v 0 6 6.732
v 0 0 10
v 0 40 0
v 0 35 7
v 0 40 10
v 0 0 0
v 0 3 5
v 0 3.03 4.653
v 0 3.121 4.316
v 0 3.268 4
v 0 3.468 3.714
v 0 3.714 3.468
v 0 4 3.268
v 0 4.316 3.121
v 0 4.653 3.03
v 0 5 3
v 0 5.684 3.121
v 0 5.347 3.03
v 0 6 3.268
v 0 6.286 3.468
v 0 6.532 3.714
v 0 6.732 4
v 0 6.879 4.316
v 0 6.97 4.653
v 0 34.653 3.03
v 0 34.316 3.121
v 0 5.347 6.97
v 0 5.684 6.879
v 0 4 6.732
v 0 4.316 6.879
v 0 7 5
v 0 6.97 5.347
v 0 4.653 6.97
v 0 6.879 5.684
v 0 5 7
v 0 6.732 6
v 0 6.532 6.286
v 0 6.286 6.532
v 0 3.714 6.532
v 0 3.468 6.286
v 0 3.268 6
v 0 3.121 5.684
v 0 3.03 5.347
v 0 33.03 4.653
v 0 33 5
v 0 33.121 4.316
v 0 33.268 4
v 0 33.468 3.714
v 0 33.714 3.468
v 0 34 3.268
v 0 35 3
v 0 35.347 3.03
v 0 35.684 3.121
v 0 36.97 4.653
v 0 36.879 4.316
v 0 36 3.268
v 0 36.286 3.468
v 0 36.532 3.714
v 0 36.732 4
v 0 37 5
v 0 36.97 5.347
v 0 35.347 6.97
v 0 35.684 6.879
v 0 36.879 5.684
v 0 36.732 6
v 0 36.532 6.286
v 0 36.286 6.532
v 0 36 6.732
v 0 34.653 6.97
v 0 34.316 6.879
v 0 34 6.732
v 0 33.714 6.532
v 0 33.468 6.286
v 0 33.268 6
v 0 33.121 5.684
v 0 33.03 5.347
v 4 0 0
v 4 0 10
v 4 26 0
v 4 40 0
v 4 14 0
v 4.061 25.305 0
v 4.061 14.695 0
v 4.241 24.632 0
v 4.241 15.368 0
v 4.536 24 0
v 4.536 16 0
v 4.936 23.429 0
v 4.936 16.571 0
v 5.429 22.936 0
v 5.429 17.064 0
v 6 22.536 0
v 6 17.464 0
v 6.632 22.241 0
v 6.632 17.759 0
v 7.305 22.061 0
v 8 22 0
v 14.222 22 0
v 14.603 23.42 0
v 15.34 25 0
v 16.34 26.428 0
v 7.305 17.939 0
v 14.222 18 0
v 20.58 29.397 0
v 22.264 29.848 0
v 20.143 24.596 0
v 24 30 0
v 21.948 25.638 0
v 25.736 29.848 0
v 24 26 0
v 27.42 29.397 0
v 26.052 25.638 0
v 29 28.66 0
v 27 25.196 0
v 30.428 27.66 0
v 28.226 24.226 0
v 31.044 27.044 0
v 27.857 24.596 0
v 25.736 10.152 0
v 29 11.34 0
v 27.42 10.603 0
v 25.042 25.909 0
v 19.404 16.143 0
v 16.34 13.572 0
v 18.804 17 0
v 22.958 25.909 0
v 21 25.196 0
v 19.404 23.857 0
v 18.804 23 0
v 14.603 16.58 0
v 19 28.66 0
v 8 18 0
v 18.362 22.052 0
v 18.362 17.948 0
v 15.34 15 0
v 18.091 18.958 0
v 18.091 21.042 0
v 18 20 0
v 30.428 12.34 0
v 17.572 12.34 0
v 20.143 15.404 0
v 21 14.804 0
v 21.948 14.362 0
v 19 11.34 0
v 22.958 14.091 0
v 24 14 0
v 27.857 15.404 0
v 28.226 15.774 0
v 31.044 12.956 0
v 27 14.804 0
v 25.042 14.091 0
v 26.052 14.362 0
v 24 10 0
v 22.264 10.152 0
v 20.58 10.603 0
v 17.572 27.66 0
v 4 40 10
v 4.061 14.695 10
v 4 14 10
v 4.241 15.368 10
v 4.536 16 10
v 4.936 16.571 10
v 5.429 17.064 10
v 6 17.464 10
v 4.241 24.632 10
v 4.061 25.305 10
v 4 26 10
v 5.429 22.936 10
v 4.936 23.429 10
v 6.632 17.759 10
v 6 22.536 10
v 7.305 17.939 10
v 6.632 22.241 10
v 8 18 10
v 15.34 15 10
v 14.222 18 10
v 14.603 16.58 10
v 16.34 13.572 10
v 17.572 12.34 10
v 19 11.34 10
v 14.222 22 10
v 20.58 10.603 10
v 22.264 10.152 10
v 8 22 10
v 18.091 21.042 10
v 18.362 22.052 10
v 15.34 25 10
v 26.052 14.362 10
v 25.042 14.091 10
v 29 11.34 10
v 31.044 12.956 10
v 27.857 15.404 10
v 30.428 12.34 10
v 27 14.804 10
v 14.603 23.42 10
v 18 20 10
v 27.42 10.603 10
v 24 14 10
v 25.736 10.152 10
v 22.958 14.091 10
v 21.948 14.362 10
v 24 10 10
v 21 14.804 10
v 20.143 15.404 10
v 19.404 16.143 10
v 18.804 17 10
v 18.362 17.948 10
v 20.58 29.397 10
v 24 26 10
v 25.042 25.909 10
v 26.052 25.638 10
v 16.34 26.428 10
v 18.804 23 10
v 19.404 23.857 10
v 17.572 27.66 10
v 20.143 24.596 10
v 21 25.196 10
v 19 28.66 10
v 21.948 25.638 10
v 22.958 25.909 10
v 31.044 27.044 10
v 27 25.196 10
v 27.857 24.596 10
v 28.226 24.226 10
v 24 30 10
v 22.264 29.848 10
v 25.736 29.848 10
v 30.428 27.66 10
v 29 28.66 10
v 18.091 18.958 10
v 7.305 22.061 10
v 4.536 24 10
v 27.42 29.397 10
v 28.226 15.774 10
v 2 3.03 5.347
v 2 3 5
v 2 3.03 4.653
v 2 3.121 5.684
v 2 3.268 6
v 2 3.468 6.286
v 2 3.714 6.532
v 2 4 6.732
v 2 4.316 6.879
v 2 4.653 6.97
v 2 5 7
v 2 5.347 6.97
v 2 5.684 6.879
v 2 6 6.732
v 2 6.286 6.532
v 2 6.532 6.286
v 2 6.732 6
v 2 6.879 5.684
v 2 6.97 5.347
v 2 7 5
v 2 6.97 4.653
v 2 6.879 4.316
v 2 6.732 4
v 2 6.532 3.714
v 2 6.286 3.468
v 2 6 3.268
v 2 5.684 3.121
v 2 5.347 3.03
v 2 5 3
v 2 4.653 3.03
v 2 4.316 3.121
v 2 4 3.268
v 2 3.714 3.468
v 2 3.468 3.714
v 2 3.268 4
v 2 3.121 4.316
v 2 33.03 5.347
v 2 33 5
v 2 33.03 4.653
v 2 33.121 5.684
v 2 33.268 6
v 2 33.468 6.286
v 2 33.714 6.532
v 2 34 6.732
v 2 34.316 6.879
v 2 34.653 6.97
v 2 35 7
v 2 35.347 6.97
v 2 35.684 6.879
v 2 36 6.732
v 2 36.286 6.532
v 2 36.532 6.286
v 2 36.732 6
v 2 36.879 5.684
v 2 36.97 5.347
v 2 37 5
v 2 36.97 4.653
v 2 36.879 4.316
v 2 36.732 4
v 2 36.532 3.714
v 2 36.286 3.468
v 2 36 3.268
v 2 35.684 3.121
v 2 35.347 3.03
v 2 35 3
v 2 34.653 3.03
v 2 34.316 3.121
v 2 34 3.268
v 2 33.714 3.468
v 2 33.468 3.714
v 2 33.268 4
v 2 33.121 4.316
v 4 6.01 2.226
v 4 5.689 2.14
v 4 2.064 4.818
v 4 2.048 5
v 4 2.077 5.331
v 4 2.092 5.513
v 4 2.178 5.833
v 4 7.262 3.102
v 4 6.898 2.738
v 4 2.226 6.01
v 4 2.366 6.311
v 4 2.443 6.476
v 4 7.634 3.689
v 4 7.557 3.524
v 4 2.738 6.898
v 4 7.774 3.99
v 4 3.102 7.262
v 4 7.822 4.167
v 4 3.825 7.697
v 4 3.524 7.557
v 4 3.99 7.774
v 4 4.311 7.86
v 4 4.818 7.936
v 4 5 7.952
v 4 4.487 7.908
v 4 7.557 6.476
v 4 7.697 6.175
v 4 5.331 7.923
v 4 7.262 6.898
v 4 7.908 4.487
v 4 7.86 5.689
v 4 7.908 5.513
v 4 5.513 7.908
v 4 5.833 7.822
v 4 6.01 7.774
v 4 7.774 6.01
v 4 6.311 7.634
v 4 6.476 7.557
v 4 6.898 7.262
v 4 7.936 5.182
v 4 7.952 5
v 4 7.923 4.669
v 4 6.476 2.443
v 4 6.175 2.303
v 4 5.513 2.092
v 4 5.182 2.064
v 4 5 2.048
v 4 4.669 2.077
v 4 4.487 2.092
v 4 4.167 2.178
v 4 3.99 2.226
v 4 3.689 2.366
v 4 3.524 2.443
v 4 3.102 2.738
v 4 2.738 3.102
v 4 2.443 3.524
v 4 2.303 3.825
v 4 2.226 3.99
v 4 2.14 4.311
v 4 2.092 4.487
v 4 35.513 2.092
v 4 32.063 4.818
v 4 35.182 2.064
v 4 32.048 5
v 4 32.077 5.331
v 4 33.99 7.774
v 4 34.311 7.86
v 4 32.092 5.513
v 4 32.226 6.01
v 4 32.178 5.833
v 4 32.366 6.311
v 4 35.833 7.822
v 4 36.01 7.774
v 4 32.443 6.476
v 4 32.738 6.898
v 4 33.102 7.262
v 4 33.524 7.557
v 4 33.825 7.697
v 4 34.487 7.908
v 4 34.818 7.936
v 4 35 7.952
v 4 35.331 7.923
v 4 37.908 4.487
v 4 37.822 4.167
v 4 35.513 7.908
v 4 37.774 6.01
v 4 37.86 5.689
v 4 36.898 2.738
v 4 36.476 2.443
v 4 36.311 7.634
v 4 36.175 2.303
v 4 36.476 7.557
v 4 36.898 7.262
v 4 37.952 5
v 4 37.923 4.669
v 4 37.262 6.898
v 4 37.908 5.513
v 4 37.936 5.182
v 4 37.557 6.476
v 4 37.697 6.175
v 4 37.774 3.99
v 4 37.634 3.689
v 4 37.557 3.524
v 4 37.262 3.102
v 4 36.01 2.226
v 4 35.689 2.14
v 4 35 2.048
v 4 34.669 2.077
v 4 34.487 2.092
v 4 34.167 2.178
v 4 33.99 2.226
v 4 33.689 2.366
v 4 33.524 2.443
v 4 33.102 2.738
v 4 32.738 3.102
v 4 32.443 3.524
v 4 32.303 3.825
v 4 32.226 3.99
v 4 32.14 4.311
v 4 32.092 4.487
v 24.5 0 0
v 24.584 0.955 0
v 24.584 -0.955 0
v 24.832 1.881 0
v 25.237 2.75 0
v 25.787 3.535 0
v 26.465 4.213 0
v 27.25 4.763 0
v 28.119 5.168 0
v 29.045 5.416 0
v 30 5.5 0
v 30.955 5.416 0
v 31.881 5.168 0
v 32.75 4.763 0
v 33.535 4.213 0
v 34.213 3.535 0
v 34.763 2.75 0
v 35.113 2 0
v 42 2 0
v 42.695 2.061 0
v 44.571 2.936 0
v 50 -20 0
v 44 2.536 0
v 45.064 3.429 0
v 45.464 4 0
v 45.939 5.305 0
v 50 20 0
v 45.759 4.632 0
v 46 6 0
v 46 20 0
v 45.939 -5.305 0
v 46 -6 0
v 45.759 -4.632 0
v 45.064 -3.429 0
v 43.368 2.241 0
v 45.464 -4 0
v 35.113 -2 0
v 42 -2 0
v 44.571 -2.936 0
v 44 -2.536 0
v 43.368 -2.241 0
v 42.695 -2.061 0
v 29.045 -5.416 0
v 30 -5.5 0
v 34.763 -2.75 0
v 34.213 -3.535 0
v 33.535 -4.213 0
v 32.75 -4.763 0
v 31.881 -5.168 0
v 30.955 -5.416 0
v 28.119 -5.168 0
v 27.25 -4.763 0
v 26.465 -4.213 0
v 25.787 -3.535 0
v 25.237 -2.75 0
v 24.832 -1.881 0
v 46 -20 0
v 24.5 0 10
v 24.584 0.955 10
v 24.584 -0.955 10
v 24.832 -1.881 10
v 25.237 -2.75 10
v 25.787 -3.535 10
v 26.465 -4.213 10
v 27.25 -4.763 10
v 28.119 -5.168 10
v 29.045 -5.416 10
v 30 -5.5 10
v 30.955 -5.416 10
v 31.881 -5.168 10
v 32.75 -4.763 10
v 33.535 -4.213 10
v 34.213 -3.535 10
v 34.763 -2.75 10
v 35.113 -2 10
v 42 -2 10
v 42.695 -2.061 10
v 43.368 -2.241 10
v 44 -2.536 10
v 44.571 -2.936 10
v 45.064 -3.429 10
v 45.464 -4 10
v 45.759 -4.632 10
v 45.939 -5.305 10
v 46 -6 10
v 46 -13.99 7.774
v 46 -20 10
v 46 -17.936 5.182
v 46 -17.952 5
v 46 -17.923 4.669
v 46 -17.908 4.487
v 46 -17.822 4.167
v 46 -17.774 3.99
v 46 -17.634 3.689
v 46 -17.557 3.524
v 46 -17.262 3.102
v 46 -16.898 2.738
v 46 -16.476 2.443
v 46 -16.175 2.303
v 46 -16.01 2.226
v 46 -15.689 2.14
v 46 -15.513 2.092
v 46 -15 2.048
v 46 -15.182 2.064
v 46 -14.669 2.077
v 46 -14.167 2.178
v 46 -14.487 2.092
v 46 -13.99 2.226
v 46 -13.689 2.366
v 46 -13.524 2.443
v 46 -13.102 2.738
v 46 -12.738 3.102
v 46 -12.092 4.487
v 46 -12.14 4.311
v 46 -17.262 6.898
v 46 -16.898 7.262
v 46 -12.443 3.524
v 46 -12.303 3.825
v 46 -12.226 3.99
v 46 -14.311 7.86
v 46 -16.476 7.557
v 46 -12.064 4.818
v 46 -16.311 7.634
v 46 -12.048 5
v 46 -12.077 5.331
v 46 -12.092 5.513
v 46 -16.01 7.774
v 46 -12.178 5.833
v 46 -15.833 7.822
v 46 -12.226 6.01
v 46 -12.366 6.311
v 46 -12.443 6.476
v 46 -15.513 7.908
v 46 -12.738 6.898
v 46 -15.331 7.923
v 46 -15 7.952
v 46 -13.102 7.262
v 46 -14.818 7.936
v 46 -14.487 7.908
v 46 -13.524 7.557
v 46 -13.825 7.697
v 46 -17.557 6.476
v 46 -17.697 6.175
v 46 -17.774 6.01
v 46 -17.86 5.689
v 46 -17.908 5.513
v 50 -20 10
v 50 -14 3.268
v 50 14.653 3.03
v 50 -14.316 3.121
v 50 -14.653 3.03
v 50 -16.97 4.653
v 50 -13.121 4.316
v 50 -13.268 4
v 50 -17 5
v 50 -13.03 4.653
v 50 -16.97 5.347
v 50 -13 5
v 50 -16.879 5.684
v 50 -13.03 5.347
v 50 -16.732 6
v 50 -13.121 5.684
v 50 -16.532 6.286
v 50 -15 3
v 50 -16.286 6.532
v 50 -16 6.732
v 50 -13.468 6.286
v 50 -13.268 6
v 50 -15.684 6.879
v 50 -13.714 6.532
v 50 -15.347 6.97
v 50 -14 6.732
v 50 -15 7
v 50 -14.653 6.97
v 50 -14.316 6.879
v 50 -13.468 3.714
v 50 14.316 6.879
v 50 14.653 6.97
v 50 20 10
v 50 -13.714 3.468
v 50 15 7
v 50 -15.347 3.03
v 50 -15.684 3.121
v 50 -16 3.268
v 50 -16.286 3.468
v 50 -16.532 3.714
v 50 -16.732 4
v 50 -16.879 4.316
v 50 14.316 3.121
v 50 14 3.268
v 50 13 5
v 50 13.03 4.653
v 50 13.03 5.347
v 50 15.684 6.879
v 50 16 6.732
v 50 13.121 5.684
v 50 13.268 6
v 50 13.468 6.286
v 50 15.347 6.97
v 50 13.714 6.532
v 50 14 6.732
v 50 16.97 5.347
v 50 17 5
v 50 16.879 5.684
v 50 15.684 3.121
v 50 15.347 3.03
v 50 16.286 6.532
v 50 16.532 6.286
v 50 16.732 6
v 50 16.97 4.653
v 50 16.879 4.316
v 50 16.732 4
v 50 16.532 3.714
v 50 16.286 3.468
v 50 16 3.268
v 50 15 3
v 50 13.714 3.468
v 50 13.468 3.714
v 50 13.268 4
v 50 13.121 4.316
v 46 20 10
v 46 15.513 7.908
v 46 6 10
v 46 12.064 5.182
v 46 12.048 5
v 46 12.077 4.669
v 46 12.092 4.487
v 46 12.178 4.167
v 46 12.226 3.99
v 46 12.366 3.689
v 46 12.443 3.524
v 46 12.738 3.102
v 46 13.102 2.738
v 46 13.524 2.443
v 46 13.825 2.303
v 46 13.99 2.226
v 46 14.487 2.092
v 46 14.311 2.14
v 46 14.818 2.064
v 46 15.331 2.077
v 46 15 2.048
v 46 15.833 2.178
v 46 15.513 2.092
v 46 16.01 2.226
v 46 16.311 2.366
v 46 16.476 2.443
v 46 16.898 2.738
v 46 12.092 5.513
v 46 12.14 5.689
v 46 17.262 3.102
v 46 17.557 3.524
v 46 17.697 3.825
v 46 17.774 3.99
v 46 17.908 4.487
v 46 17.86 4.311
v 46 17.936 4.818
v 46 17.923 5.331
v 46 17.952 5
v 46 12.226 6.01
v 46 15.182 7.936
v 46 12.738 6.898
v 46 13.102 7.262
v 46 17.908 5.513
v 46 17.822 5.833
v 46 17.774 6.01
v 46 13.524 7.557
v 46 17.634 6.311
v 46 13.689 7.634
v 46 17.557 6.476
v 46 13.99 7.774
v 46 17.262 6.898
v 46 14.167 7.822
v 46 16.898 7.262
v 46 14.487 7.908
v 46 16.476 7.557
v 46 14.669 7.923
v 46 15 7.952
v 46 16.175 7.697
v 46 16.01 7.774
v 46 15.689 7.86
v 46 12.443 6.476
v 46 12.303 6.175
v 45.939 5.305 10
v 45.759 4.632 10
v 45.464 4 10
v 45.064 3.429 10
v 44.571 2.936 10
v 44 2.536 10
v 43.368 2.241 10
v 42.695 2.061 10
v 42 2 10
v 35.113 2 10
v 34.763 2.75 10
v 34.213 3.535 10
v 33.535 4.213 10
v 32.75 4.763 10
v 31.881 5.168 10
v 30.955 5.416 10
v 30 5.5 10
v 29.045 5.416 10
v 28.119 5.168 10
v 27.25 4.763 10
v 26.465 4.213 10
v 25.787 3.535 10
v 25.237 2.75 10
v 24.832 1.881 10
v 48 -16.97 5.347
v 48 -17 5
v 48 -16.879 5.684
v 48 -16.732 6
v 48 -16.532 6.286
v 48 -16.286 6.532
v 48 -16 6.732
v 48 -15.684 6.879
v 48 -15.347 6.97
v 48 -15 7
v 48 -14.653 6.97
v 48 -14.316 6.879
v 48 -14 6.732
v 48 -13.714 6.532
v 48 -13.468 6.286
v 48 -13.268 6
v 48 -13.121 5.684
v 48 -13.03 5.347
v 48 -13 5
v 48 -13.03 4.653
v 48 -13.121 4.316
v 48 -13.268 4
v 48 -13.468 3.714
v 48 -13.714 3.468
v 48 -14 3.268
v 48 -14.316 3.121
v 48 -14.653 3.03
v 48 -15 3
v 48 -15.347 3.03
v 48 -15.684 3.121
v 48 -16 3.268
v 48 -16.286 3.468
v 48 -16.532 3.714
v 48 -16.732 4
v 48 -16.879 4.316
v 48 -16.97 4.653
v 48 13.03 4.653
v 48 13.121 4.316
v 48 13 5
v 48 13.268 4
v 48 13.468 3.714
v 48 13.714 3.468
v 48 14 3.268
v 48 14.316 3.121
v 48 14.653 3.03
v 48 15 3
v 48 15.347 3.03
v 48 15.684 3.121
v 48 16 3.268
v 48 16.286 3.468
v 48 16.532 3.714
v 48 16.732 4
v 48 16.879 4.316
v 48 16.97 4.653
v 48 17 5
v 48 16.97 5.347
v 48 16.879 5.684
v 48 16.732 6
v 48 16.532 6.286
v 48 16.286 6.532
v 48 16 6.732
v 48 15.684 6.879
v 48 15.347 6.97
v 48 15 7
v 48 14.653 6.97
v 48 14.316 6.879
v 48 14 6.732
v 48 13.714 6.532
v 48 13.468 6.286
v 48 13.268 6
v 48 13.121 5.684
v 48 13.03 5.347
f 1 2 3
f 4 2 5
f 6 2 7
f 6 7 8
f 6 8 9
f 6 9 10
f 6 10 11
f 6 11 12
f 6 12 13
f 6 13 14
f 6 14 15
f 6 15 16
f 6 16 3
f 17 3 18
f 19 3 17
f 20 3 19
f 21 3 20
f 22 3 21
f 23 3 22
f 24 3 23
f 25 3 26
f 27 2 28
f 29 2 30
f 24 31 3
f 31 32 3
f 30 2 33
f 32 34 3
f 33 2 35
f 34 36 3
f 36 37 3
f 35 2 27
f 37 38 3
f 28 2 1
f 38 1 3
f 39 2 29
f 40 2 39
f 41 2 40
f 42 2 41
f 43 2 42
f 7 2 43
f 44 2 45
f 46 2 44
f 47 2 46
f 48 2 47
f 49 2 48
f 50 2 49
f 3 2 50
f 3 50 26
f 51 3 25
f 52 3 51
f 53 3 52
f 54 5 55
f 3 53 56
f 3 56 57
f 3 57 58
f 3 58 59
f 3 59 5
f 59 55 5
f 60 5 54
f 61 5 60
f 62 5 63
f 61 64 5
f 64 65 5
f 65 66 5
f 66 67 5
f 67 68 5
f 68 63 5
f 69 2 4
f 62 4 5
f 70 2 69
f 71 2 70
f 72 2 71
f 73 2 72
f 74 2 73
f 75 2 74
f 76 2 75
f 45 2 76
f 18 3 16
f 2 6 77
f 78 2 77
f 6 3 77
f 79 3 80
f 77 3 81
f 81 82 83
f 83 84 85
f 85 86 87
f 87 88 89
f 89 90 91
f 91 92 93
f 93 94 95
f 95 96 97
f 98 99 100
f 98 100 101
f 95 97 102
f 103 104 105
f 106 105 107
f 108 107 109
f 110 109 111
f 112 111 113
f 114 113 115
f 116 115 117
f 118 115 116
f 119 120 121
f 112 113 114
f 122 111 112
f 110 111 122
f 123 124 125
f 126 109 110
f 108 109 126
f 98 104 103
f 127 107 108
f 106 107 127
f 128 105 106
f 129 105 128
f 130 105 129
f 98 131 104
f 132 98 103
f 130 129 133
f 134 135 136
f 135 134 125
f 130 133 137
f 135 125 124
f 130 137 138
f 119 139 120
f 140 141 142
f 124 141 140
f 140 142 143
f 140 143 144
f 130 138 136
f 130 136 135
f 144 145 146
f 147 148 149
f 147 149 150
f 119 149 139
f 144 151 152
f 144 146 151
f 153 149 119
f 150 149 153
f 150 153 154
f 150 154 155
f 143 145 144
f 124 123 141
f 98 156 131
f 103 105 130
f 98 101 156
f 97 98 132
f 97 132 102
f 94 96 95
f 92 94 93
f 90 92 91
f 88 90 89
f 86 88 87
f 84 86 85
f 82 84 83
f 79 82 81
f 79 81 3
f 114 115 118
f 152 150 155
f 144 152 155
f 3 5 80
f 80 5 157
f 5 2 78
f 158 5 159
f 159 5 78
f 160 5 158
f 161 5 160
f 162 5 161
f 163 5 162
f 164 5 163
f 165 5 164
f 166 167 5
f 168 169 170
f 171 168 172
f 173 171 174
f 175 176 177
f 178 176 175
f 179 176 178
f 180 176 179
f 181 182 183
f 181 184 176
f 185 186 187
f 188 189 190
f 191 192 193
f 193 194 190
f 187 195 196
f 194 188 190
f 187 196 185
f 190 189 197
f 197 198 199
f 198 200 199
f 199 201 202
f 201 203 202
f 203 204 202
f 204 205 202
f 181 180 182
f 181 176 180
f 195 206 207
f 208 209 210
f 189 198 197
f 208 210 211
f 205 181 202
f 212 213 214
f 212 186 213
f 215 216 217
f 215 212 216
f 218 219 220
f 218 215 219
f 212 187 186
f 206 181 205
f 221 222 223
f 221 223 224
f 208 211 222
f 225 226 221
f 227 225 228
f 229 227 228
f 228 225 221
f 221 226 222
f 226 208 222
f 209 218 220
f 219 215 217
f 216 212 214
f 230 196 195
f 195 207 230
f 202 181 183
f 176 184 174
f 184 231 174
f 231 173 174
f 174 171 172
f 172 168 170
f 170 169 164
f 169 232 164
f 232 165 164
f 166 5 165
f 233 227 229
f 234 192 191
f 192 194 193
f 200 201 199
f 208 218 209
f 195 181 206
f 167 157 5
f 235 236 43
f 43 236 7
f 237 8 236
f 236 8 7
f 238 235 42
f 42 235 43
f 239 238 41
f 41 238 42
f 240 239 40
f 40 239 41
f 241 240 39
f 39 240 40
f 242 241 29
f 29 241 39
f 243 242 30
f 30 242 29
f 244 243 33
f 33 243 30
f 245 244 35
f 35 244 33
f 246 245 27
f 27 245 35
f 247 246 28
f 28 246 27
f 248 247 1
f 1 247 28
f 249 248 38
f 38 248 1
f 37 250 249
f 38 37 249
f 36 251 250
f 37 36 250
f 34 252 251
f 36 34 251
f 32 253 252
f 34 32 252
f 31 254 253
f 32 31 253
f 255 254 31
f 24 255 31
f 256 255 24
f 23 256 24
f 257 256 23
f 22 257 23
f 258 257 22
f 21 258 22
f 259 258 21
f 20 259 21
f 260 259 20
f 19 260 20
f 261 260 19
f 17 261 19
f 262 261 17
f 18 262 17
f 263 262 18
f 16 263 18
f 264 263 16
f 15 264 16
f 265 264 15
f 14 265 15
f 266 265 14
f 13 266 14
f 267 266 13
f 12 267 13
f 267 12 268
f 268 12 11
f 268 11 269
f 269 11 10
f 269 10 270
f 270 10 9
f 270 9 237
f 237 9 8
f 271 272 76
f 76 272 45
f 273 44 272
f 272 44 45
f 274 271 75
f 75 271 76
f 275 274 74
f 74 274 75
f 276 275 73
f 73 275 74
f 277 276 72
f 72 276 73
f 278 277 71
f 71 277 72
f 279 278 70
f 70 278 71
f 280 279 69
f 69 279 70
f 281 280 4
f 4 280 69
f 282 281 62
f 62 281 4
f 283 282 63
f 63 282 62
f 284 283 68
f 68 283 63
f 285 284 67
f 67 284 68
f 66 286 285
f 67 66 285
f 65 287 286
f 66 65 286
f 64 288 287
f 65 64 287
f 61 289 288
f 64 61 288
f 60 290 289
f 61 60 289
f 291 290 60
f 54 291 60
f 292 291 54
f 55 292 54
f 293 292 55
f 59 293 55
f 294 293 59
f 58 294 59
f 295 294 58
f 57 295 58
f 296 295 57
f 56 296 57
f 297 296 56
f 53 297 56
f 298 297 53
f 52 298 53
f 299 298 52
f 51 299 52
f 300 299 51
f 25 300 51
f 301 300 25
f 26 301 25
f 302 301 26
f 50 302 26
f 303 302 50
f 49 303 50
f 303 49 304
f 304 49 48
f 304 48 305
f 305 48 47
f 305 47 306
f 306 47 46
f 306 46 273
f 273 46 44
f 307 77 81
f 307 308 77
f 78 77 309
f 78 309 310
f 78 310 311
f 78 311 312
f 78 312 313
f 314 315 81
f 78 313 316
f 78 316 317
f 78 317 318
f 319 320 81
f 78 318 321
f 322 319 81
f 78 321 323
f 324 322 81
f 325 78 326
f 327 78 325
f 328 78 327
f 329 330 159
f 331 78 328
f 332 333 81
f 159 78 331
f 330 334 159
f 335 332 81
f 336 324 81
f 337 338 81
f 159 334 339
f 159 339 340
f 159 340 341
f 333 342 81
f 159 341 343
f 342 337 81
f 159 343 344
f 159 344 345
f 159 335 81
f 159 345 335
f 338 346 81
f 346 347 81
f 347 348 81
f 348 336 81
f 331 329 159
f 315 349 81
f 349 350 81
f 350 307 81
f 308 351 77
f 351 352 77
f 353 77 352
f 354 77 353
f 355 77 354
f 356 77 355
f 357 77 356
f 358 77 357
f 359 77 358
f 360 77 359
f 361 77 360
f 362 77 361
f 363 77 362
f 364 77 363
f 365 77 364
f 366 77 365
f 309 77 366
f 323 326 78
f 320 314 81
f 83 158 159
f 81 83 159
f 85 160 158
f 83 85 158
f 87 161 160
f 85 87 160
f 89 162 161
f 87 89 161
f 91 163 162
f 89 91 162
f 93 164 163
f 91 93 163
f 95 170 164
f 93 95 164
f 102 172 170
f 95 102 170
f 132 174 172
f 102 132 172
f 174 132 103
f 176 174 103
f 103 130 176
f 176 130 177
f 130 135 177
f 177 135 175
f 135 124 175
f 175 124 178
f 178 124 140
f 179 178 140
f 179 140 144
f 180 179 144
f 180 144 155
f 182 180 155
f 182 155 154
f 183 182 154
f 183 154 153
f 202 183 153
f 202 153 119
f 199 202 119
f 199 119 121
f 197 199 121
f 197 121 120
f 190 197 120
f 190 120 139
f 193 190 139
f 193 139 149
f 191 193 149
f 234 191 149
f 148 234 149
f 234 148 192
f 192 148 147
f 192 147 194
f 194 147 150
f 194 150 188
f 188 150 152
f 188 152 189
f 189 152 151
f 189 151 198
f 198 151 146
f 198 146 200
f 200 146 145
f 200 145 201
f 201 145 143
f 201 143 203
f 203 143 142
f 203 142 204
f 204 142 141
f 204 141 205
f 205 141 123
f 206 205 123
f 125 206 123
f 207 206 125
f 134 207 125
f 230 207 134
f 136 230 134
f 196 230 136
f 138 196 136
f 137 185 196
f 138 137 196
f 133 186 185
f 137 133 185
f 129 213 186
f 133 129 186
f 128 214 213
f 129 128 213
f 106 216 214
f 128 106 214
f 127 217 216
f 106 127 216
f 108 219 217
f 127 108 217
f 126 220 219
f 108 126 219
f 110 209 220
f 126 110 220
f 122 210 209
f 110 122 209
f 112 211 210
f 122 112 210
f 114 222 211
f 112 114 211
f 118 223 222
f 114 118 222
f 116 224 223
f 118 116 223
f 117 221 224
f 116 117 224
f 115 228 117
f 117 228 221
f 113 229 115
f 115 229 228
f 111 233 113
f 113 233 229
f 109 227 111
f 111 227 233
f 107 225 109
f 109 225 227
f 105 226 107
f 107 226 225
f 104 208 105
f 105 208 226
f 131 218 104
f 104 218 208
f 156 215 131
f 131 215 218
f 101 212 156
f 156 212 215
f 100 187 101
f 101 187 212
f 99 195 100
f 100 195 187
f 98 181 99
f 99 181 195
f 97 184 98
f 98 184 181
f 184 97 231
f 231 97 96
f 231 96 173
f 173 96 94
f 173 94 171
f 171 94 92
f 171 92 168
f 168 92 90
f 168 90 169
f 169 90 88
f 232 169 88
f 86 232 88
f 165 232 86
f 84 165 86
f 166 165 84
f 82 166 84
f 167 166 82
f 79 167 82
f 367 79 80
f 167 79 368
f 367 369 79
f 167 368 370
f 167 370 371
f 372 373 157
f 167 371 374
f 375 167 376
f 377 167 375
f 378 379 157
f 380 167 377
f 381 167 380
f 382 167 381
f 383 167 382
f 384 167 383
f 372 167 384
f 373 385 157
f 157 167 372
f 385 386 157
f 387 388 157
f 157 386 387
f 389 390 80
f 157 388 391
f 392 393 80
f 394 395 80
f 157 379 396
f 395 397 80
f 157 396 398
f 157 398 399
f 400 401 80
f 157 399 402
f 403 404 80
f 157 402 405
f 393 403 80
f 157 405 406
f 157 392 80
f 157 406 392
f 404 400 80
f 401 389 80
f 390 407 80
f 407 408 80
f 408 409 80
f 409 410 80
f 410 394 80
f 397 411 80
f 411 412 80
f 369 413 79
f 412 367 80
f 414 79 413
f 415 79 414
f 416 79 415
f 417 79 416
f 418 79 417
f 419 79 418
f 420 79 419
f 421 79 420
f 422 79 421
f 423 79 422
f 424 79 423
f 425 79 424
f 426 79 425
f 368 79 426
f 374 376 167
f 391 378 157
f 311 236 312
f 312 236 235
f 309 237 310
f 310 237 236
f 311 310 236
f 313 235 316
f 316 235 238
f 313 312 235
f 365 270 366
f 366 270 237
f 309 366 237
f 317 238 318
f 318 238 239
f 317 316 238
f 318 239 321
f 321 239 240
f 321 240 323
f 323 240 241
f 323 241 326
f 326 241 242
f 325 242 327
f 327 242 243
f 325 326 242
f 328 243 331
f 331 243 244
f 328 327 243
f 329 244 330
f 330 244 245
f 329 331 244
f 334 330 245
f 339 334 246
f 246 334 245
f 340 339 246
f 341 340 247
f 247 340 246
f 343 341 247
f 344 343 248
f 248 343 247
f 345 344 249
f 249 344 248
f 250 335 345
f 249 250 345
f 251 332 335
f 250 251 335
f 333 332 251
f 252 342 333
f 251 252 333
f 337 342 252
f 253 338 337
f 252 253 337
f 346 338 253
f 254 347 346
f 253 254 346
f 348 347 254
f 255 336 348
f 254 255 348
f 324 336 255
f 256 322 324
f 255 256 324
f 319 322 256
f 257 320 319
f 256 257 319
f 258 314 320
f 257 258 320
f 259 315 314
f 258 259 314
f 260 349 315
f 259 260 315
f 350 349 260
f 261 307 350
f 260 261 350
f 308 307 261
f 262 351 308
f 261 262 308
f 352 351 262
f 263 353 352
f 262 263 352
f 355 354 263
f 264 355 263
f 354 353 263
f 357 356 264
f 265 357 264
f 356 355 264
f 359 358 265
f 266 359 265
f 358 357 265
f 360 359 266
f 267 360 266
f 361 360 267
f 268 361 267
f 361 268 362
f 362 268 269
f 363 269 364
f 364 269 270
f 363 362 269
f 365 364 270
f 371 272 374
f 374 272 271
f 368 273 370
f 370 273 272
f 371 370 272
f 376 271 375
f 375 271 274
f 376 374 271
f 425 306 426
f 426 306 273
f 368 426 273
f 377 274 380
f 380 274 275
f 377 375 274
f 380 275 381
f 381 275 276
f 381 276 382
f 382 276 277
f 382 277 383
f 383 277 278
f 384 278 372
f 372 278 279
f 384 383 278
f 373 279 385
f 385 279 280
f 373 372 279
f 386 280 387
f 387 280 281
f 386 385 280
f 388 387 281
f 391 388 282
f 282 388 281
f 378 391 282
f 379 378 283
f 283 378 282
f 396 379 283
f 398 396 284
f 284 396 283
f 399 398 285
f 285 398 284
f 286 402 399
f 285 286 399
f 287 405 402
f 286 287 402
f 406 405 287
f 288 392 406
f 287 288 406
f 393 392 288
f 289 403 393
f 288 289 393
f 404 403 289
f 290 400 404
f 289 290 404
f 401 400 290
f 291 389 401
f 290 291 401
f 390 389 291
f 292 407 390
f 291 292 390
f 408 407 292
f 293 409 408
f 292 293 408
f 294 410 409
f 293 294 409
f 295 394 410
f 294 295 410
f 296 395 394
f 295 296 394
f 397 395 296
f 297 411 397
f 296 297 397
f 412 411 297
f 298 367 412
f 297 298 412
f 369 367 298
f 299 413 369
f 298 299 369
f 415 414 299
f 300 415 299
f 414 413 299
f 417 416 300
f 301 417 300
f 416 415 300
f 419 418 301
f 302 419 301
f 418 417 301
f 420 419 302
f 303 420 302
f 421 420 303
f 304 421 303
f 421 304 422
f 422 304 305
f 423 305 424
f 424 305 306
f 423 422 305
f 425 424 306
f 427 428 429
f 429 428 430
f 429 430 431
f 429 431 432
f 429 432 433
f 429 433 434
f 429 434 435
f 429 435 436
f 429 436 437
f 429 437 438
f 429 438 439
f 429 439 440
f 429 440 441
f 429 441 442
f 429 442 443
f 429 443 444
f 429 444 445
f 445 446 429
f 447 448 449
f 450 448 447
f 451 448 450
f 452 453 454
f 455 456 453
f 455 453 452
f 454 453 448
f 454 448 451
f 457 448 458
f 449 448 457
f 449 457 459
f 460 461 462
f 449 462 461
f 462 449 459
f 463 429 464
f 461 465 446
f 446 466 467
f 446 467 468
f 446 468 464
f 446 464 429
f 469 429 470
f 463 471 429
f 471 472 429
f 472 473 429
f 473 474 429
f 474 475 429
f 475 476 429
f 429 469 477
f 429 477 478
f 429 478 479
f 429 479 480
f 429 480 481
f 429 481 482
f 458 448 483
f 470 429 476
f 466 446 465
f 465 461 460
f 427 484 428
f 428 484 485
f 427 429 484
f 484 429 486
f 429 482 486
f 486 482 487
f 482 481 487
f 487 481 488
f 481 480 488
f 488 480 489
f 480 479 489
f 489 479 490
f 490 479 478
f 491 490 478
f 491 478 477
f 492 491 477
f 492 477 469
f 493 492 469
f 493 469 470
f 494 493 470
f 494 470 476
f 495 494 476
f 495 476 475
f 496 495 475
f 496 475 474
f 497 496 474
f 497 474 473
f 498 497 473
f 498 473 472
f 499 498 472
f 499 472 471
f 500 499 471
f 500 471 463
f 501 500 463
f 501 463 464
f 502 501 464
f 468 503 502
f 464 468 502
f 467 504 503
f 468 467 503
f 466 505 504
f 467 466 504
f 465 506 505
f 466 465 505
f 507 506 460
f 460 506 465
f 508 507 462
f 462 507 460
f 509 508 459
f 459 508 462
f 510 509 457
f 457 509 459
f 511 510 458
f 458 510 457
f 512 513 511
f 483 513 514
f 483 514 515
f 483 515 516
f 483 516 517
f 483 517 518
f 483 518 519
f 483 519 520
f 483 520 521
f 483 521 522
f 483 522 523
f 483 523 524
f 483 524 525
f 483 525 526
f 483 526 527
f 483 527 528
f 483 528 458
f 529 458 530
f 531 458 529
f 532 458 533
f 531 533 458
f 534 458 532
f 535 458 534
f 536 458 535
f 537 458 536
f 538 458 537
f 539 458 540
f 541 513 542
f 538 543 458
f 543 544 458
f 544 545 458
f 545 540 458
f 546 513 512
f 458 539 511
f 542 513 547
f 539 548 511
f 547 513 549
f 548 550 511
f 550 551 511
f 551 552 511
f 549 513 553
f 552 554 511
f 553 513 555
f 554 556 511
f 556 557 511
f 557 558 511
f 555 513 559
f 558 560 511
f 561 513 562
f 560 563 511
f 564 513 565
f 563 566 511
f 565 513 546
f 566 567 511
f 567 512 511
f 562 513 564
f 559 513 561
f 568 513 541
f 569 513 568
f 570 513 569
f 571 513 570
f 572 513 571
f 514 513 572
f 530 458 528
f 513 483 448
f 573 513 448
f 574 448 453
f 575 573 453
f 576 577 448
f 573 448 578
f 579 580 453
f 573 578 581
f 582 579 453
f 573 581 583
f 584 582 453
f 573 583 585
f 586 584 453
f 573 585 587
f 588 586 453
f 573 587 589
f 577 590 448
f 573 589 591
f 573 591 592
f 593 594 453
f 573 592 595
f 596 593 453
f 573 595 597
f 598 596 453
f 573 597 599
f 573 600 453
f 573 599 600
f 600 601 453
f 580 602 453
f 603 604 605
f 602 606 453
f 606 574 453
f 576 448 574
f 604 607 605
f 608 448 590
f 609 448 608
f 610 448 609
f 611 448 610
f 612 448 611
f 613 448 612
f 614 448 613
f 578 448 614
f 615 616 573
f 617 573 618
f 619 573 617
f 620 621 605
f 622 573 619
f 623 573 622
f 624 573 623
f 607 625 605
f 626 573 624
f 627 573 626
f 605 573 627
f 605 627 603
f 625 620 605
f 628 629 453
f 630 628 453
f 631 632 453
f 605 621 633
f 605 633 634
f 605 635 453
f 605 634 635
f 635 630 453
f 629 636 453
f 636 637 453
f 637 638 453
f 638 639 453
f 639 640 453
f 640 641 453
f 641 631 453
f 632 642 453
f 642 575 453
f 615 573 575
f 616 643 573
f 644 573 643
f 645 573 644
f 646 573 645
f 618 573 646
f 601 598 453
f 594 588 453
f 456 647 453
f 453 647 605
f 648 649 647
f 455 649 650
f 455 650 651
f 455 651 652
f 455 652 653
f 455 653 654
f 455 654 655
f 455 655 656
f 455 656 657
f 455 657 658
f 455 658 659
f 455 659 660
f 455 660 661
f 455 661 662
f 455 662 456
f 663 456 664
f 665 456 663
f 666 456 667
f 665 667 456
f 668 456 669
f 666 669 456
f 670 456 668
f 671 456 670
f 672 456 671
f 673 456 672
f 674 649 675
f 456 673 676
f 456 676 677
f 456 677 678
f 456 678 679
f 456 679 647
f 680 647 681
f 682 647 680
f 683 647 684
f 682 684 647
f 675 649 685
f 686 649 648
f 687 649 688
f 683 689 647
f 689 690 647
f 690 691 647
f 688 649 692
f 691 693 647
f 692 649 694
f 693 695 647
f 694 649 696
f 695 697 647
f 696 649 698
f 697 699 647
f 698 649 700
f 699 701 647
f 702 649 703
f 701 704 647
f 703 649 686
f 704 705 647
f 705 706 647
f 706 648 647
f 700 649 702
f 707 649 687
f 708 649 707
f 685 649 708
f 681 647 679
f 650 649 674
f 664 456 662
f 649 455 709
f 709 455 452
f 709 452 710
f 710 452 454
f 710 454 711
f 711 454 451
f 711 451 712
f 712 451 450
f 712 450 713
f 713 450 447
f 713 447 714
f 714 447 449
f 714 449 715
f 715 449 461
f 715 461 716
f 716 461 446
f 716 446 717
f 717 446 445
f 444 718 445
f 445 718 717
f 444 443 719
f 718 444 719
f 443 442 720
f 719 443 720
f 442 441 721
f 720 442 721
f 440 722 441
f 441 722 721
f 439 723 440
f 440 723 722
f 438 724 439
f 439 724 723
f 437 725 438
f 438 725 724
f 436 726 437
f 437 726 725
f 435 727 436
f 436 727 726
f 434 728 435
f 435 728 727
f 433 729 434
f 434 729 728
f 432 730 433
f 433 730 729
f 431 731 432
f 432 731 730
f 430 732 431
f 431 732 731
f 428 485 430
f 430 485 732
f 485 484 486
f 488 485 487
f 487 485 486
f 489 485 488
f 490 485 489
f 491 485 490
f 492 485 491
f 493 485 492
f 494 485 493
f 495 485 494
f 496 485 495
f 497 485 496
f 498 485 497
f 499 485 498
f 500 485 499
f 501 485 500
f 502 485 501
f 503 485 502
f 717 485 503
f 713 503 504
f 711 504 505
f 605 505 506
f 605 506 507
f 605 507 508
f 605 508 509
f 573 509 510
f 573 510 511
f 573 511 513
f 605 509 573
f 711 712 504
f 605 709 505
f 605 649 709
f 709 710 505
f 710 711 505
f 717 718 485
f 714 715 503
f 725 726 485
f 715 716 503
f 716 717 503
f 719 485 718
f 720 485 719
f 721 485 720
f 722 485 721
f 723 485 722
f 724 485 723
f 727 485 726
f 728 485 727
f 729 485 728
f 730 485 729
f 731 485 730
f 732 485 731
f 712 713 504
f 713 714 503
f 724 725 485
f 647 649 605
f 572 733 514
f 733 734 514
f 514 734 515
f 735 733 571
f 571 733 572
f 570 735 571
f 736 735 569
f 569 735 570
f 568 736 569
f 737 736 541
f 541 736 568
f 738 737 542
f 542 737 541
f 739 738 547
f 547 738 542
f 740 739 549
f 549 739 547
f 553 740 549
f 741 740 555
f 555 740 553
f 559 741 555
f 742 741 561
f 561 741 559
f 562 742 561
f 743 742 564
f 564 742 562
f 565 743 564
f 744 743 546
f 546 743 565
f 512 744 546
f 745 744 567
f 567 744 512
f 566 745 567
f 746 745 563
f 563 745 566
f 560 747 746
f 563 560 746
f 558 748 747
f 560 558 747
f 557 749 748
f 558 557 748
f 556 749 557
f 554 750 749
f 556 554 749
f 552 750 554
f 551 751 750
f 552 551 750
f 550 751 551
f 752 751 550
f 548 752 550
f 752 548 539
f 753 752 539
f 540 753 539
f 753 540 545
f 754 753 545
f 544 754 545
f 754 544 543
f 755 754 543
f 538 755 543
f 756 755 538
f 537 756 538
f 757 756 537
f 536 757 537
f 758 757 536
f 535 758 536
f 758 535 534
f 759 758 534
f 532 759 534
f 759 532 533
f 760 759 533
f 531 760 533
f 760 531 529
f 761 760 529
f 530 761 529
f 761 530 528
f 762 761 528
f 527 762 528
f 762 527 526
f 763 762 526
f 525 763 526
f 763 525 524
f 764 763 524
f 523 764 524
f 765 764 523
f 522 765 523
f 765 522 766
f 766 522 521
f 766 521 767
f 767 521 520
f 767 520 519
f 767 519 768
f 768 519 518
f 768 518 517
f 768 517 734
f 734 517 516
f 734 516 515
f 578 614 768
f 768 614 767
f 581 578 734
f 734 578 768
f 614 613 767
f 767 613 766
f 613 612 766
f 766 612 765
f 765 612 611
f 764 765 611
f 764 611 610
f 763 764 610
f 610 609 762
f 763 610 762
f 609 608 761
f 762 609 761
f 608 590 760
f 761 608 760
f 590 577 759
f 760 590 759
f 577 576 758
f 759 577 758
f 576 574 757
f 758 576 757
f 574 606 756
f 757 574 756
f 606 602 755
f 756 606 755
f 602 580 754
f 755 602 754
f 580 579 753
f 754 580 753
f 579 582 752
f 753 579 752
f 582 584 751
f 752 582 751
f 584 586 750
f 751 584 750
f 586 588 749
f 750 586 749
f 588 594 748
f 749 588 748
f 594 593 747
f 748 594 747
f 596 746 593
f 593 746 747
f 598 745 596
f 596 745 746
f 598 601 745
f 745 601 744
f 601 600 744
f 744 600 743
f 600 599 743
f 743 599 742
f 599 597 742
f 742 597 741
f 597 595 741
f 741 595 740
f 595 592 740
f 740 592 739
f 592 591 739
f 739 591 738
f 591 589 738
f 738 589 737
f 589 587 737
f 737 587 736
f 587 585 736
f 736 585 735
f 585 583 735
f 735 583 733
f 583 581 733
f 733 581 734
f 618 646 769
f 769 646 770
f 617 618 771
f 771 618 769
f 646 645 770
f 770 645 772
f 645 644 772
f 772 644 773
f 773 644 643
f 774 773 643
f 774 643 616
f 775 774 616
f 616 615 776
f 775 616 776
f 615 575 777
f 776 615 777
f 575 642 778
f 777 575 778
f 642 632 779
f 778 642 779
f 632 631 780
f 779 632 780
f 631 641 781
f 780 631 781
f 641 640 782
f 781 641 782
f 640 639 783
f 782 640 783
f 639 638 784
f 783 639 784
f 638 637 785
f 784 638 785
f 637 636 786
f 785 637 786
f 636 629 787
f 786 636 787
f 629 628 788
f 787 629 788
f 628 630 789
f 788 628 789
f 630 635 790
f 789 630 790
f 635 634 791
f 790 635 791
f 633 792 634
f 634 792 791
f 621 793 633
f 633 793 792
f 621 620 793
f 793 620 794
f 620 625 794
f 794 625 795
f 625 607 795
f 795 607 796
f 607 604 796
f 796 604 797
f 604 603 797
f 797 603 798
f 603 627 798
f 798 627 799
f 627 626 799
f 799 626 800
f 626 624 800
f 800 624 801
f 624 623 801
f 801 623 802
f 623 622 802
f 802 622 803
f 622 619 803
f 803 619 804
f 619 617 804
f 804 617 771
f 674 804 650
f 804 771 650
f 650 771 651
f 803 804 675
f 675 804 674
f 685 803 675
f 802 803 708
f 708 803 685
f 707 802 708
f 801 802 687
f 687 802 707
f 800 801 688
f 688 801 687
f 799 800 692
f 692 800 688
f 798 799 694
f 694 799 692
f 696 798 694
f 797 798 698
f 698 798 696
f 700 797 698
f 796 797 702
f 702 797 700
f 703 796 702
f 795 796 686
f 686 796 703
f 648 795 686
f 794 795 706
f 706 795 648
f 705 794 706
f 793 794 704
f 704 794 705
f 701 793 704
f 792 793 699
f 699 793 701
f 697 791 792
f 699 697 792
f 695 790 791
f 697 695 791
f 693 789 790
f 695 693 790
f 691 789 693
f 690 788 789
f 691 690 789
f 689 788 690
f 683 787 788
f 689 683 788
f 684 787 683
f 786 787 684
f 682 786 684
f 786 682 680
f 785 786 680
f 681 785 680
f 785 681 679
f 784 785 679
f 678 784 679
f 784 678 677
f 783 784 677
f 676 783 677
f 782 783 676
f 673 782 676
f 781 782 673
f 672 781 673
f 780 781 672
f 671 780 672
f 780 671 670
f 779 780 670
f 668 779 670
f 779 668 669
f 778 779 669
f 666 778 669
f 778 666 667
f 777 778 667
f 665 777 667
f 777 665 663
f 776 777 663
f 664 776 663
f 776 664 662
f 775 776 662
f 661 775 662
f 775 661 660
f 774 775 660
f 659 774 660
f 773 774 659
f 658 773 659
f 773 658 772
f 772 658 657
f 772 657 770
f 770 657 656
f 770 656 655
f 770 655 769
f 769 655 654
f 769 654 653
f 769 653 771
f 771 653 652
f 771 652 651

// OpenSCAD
Wall_Thickness = 4;
Wall_Height = 10;

Baseplate_Length = 40;
Offset_Strut_Length = 10;
Clamp_Radius = 10;

// Main Call
WallMount();
translate([50, 20, 0])
	rotate([0, 0, 180])
		DoorMount();


module DoorMount()
{
	union()
	{
		BasePlate();
		ClampNodule();
	}
}

module WallMount()
{
	union()
	{
		BasePlate();
		Clamp();
	}
}

module BasePlate()
{
	difference()
	{
		// Baseplate
		cube([Wall_Thickness, Baseplate_Length, Wall_Height]);
		// Cutout for screws
		translate([0, 5, Wall_Height/2.0])
			rotate([0, 90, 0])
				translate([0, 0, -0.1])
					cylinder(r=2, h=Wall_Thickness+0.2, $fn=36);
		translate([0, 5, Wall_Height/2.0])
			rotate([0, 90, 0])
				translate([0, 0, Wall_Thickness/2])
					cylinder(r1=2, r2=4, h=Wall_Thickness+0.2, $fn=36);

		translate([0, Baseplate_Length-5, Wall_Height/2.0])
			rotate([0, 90, 0])
				translate([0, 0,  Wall_Thickness/2])
					cylinder(r1=2, r2=4, h=Wall_Thickness+0.2, $fn=36);
		translate([0, Baseplate_Length-5, Wall_Height/2.0])
			rotate([0, 90, 0])
				translate([0, 0, -0.1])
					cylinder(r=2, h=Wall_Thickness+0.2, $fn=36);
	}

	// Offset Strut
	translate([Wall_Thickness, 
				 (Baseplate_Length/2.0) - (Wall_Thickness/2.0), 
				 0])
		cube([Offset_Strut_Length+(Wall_Thickness/2.0),
				Wall_Thickness,
				Wall_Height]);

	// Rounded inserts
	translate([Wall_Thickness, (Baseplate_Length/2.0)+(Wall_Thickness/2.0), 0])
	{
		difference()
		{
			cube([Wall_Thickness, Wall_Thickness, Wall_Height]);
			translate([Wall_Thickness, Wall_Thickness, -0.1])
				cylinder(r=Wall_Thickness, h=Wall_Height+0.2, $fn=36);
		}
	}
	translate([Wall_Thickness, (Baseplate_Length/2.0)-(Wall_Thickness*1.5), 0])
	{
		difference()
		{
			cube([Wall_Thickness, Wall_Thickness, Wall_Height]);
			translate([Wall_Thickness, 0, -0.1])
				cylinder(r=Wall_Thickness, h=Wall_Height+0.2, $fn=36);
		}
	}
}


module Clamp()
{
	difference()
	{
		// Clamp
		translate([Wall_Thickness+Offset_Strut_Length+Clamp_Radius,
					 (Baseplate_Length/2.0),
					 0])
		{
			difference()
			{
				cylinder(r=Clamp_Radius, h=Wall_Height, $fn=36);
				translate([0, 0, -0.1])
					cylinder(r=Clamp_Radius-Wall_Thickness, h=Wall_Height+0.2, $fn=36);
			}
		}

		translate([Wall_Thickness+Offset_Strut_Length+Clamp_Radius,
					 (Baseplate_Length/2.0),
					 -0.1])
			rotate([0, 0, -45])
				cube([Clamp_Radius*2, Clamp_Radius*2, Wall_Height+0.2]);
	}
}



module ClampNodule()
{
	// Clamp
	translate([Wall_Thickness+Offset_Strut_Length+(Clamp_Radius-Wall_Thickness),
				 (Baseplate_Length/2.0),
				 0])
	{
		difference()
		{
			cylinder(r=Clamp_Radius-Wall_Thickness-0.5, h=Wall_Height, $fn=36);
		}
	}
}
